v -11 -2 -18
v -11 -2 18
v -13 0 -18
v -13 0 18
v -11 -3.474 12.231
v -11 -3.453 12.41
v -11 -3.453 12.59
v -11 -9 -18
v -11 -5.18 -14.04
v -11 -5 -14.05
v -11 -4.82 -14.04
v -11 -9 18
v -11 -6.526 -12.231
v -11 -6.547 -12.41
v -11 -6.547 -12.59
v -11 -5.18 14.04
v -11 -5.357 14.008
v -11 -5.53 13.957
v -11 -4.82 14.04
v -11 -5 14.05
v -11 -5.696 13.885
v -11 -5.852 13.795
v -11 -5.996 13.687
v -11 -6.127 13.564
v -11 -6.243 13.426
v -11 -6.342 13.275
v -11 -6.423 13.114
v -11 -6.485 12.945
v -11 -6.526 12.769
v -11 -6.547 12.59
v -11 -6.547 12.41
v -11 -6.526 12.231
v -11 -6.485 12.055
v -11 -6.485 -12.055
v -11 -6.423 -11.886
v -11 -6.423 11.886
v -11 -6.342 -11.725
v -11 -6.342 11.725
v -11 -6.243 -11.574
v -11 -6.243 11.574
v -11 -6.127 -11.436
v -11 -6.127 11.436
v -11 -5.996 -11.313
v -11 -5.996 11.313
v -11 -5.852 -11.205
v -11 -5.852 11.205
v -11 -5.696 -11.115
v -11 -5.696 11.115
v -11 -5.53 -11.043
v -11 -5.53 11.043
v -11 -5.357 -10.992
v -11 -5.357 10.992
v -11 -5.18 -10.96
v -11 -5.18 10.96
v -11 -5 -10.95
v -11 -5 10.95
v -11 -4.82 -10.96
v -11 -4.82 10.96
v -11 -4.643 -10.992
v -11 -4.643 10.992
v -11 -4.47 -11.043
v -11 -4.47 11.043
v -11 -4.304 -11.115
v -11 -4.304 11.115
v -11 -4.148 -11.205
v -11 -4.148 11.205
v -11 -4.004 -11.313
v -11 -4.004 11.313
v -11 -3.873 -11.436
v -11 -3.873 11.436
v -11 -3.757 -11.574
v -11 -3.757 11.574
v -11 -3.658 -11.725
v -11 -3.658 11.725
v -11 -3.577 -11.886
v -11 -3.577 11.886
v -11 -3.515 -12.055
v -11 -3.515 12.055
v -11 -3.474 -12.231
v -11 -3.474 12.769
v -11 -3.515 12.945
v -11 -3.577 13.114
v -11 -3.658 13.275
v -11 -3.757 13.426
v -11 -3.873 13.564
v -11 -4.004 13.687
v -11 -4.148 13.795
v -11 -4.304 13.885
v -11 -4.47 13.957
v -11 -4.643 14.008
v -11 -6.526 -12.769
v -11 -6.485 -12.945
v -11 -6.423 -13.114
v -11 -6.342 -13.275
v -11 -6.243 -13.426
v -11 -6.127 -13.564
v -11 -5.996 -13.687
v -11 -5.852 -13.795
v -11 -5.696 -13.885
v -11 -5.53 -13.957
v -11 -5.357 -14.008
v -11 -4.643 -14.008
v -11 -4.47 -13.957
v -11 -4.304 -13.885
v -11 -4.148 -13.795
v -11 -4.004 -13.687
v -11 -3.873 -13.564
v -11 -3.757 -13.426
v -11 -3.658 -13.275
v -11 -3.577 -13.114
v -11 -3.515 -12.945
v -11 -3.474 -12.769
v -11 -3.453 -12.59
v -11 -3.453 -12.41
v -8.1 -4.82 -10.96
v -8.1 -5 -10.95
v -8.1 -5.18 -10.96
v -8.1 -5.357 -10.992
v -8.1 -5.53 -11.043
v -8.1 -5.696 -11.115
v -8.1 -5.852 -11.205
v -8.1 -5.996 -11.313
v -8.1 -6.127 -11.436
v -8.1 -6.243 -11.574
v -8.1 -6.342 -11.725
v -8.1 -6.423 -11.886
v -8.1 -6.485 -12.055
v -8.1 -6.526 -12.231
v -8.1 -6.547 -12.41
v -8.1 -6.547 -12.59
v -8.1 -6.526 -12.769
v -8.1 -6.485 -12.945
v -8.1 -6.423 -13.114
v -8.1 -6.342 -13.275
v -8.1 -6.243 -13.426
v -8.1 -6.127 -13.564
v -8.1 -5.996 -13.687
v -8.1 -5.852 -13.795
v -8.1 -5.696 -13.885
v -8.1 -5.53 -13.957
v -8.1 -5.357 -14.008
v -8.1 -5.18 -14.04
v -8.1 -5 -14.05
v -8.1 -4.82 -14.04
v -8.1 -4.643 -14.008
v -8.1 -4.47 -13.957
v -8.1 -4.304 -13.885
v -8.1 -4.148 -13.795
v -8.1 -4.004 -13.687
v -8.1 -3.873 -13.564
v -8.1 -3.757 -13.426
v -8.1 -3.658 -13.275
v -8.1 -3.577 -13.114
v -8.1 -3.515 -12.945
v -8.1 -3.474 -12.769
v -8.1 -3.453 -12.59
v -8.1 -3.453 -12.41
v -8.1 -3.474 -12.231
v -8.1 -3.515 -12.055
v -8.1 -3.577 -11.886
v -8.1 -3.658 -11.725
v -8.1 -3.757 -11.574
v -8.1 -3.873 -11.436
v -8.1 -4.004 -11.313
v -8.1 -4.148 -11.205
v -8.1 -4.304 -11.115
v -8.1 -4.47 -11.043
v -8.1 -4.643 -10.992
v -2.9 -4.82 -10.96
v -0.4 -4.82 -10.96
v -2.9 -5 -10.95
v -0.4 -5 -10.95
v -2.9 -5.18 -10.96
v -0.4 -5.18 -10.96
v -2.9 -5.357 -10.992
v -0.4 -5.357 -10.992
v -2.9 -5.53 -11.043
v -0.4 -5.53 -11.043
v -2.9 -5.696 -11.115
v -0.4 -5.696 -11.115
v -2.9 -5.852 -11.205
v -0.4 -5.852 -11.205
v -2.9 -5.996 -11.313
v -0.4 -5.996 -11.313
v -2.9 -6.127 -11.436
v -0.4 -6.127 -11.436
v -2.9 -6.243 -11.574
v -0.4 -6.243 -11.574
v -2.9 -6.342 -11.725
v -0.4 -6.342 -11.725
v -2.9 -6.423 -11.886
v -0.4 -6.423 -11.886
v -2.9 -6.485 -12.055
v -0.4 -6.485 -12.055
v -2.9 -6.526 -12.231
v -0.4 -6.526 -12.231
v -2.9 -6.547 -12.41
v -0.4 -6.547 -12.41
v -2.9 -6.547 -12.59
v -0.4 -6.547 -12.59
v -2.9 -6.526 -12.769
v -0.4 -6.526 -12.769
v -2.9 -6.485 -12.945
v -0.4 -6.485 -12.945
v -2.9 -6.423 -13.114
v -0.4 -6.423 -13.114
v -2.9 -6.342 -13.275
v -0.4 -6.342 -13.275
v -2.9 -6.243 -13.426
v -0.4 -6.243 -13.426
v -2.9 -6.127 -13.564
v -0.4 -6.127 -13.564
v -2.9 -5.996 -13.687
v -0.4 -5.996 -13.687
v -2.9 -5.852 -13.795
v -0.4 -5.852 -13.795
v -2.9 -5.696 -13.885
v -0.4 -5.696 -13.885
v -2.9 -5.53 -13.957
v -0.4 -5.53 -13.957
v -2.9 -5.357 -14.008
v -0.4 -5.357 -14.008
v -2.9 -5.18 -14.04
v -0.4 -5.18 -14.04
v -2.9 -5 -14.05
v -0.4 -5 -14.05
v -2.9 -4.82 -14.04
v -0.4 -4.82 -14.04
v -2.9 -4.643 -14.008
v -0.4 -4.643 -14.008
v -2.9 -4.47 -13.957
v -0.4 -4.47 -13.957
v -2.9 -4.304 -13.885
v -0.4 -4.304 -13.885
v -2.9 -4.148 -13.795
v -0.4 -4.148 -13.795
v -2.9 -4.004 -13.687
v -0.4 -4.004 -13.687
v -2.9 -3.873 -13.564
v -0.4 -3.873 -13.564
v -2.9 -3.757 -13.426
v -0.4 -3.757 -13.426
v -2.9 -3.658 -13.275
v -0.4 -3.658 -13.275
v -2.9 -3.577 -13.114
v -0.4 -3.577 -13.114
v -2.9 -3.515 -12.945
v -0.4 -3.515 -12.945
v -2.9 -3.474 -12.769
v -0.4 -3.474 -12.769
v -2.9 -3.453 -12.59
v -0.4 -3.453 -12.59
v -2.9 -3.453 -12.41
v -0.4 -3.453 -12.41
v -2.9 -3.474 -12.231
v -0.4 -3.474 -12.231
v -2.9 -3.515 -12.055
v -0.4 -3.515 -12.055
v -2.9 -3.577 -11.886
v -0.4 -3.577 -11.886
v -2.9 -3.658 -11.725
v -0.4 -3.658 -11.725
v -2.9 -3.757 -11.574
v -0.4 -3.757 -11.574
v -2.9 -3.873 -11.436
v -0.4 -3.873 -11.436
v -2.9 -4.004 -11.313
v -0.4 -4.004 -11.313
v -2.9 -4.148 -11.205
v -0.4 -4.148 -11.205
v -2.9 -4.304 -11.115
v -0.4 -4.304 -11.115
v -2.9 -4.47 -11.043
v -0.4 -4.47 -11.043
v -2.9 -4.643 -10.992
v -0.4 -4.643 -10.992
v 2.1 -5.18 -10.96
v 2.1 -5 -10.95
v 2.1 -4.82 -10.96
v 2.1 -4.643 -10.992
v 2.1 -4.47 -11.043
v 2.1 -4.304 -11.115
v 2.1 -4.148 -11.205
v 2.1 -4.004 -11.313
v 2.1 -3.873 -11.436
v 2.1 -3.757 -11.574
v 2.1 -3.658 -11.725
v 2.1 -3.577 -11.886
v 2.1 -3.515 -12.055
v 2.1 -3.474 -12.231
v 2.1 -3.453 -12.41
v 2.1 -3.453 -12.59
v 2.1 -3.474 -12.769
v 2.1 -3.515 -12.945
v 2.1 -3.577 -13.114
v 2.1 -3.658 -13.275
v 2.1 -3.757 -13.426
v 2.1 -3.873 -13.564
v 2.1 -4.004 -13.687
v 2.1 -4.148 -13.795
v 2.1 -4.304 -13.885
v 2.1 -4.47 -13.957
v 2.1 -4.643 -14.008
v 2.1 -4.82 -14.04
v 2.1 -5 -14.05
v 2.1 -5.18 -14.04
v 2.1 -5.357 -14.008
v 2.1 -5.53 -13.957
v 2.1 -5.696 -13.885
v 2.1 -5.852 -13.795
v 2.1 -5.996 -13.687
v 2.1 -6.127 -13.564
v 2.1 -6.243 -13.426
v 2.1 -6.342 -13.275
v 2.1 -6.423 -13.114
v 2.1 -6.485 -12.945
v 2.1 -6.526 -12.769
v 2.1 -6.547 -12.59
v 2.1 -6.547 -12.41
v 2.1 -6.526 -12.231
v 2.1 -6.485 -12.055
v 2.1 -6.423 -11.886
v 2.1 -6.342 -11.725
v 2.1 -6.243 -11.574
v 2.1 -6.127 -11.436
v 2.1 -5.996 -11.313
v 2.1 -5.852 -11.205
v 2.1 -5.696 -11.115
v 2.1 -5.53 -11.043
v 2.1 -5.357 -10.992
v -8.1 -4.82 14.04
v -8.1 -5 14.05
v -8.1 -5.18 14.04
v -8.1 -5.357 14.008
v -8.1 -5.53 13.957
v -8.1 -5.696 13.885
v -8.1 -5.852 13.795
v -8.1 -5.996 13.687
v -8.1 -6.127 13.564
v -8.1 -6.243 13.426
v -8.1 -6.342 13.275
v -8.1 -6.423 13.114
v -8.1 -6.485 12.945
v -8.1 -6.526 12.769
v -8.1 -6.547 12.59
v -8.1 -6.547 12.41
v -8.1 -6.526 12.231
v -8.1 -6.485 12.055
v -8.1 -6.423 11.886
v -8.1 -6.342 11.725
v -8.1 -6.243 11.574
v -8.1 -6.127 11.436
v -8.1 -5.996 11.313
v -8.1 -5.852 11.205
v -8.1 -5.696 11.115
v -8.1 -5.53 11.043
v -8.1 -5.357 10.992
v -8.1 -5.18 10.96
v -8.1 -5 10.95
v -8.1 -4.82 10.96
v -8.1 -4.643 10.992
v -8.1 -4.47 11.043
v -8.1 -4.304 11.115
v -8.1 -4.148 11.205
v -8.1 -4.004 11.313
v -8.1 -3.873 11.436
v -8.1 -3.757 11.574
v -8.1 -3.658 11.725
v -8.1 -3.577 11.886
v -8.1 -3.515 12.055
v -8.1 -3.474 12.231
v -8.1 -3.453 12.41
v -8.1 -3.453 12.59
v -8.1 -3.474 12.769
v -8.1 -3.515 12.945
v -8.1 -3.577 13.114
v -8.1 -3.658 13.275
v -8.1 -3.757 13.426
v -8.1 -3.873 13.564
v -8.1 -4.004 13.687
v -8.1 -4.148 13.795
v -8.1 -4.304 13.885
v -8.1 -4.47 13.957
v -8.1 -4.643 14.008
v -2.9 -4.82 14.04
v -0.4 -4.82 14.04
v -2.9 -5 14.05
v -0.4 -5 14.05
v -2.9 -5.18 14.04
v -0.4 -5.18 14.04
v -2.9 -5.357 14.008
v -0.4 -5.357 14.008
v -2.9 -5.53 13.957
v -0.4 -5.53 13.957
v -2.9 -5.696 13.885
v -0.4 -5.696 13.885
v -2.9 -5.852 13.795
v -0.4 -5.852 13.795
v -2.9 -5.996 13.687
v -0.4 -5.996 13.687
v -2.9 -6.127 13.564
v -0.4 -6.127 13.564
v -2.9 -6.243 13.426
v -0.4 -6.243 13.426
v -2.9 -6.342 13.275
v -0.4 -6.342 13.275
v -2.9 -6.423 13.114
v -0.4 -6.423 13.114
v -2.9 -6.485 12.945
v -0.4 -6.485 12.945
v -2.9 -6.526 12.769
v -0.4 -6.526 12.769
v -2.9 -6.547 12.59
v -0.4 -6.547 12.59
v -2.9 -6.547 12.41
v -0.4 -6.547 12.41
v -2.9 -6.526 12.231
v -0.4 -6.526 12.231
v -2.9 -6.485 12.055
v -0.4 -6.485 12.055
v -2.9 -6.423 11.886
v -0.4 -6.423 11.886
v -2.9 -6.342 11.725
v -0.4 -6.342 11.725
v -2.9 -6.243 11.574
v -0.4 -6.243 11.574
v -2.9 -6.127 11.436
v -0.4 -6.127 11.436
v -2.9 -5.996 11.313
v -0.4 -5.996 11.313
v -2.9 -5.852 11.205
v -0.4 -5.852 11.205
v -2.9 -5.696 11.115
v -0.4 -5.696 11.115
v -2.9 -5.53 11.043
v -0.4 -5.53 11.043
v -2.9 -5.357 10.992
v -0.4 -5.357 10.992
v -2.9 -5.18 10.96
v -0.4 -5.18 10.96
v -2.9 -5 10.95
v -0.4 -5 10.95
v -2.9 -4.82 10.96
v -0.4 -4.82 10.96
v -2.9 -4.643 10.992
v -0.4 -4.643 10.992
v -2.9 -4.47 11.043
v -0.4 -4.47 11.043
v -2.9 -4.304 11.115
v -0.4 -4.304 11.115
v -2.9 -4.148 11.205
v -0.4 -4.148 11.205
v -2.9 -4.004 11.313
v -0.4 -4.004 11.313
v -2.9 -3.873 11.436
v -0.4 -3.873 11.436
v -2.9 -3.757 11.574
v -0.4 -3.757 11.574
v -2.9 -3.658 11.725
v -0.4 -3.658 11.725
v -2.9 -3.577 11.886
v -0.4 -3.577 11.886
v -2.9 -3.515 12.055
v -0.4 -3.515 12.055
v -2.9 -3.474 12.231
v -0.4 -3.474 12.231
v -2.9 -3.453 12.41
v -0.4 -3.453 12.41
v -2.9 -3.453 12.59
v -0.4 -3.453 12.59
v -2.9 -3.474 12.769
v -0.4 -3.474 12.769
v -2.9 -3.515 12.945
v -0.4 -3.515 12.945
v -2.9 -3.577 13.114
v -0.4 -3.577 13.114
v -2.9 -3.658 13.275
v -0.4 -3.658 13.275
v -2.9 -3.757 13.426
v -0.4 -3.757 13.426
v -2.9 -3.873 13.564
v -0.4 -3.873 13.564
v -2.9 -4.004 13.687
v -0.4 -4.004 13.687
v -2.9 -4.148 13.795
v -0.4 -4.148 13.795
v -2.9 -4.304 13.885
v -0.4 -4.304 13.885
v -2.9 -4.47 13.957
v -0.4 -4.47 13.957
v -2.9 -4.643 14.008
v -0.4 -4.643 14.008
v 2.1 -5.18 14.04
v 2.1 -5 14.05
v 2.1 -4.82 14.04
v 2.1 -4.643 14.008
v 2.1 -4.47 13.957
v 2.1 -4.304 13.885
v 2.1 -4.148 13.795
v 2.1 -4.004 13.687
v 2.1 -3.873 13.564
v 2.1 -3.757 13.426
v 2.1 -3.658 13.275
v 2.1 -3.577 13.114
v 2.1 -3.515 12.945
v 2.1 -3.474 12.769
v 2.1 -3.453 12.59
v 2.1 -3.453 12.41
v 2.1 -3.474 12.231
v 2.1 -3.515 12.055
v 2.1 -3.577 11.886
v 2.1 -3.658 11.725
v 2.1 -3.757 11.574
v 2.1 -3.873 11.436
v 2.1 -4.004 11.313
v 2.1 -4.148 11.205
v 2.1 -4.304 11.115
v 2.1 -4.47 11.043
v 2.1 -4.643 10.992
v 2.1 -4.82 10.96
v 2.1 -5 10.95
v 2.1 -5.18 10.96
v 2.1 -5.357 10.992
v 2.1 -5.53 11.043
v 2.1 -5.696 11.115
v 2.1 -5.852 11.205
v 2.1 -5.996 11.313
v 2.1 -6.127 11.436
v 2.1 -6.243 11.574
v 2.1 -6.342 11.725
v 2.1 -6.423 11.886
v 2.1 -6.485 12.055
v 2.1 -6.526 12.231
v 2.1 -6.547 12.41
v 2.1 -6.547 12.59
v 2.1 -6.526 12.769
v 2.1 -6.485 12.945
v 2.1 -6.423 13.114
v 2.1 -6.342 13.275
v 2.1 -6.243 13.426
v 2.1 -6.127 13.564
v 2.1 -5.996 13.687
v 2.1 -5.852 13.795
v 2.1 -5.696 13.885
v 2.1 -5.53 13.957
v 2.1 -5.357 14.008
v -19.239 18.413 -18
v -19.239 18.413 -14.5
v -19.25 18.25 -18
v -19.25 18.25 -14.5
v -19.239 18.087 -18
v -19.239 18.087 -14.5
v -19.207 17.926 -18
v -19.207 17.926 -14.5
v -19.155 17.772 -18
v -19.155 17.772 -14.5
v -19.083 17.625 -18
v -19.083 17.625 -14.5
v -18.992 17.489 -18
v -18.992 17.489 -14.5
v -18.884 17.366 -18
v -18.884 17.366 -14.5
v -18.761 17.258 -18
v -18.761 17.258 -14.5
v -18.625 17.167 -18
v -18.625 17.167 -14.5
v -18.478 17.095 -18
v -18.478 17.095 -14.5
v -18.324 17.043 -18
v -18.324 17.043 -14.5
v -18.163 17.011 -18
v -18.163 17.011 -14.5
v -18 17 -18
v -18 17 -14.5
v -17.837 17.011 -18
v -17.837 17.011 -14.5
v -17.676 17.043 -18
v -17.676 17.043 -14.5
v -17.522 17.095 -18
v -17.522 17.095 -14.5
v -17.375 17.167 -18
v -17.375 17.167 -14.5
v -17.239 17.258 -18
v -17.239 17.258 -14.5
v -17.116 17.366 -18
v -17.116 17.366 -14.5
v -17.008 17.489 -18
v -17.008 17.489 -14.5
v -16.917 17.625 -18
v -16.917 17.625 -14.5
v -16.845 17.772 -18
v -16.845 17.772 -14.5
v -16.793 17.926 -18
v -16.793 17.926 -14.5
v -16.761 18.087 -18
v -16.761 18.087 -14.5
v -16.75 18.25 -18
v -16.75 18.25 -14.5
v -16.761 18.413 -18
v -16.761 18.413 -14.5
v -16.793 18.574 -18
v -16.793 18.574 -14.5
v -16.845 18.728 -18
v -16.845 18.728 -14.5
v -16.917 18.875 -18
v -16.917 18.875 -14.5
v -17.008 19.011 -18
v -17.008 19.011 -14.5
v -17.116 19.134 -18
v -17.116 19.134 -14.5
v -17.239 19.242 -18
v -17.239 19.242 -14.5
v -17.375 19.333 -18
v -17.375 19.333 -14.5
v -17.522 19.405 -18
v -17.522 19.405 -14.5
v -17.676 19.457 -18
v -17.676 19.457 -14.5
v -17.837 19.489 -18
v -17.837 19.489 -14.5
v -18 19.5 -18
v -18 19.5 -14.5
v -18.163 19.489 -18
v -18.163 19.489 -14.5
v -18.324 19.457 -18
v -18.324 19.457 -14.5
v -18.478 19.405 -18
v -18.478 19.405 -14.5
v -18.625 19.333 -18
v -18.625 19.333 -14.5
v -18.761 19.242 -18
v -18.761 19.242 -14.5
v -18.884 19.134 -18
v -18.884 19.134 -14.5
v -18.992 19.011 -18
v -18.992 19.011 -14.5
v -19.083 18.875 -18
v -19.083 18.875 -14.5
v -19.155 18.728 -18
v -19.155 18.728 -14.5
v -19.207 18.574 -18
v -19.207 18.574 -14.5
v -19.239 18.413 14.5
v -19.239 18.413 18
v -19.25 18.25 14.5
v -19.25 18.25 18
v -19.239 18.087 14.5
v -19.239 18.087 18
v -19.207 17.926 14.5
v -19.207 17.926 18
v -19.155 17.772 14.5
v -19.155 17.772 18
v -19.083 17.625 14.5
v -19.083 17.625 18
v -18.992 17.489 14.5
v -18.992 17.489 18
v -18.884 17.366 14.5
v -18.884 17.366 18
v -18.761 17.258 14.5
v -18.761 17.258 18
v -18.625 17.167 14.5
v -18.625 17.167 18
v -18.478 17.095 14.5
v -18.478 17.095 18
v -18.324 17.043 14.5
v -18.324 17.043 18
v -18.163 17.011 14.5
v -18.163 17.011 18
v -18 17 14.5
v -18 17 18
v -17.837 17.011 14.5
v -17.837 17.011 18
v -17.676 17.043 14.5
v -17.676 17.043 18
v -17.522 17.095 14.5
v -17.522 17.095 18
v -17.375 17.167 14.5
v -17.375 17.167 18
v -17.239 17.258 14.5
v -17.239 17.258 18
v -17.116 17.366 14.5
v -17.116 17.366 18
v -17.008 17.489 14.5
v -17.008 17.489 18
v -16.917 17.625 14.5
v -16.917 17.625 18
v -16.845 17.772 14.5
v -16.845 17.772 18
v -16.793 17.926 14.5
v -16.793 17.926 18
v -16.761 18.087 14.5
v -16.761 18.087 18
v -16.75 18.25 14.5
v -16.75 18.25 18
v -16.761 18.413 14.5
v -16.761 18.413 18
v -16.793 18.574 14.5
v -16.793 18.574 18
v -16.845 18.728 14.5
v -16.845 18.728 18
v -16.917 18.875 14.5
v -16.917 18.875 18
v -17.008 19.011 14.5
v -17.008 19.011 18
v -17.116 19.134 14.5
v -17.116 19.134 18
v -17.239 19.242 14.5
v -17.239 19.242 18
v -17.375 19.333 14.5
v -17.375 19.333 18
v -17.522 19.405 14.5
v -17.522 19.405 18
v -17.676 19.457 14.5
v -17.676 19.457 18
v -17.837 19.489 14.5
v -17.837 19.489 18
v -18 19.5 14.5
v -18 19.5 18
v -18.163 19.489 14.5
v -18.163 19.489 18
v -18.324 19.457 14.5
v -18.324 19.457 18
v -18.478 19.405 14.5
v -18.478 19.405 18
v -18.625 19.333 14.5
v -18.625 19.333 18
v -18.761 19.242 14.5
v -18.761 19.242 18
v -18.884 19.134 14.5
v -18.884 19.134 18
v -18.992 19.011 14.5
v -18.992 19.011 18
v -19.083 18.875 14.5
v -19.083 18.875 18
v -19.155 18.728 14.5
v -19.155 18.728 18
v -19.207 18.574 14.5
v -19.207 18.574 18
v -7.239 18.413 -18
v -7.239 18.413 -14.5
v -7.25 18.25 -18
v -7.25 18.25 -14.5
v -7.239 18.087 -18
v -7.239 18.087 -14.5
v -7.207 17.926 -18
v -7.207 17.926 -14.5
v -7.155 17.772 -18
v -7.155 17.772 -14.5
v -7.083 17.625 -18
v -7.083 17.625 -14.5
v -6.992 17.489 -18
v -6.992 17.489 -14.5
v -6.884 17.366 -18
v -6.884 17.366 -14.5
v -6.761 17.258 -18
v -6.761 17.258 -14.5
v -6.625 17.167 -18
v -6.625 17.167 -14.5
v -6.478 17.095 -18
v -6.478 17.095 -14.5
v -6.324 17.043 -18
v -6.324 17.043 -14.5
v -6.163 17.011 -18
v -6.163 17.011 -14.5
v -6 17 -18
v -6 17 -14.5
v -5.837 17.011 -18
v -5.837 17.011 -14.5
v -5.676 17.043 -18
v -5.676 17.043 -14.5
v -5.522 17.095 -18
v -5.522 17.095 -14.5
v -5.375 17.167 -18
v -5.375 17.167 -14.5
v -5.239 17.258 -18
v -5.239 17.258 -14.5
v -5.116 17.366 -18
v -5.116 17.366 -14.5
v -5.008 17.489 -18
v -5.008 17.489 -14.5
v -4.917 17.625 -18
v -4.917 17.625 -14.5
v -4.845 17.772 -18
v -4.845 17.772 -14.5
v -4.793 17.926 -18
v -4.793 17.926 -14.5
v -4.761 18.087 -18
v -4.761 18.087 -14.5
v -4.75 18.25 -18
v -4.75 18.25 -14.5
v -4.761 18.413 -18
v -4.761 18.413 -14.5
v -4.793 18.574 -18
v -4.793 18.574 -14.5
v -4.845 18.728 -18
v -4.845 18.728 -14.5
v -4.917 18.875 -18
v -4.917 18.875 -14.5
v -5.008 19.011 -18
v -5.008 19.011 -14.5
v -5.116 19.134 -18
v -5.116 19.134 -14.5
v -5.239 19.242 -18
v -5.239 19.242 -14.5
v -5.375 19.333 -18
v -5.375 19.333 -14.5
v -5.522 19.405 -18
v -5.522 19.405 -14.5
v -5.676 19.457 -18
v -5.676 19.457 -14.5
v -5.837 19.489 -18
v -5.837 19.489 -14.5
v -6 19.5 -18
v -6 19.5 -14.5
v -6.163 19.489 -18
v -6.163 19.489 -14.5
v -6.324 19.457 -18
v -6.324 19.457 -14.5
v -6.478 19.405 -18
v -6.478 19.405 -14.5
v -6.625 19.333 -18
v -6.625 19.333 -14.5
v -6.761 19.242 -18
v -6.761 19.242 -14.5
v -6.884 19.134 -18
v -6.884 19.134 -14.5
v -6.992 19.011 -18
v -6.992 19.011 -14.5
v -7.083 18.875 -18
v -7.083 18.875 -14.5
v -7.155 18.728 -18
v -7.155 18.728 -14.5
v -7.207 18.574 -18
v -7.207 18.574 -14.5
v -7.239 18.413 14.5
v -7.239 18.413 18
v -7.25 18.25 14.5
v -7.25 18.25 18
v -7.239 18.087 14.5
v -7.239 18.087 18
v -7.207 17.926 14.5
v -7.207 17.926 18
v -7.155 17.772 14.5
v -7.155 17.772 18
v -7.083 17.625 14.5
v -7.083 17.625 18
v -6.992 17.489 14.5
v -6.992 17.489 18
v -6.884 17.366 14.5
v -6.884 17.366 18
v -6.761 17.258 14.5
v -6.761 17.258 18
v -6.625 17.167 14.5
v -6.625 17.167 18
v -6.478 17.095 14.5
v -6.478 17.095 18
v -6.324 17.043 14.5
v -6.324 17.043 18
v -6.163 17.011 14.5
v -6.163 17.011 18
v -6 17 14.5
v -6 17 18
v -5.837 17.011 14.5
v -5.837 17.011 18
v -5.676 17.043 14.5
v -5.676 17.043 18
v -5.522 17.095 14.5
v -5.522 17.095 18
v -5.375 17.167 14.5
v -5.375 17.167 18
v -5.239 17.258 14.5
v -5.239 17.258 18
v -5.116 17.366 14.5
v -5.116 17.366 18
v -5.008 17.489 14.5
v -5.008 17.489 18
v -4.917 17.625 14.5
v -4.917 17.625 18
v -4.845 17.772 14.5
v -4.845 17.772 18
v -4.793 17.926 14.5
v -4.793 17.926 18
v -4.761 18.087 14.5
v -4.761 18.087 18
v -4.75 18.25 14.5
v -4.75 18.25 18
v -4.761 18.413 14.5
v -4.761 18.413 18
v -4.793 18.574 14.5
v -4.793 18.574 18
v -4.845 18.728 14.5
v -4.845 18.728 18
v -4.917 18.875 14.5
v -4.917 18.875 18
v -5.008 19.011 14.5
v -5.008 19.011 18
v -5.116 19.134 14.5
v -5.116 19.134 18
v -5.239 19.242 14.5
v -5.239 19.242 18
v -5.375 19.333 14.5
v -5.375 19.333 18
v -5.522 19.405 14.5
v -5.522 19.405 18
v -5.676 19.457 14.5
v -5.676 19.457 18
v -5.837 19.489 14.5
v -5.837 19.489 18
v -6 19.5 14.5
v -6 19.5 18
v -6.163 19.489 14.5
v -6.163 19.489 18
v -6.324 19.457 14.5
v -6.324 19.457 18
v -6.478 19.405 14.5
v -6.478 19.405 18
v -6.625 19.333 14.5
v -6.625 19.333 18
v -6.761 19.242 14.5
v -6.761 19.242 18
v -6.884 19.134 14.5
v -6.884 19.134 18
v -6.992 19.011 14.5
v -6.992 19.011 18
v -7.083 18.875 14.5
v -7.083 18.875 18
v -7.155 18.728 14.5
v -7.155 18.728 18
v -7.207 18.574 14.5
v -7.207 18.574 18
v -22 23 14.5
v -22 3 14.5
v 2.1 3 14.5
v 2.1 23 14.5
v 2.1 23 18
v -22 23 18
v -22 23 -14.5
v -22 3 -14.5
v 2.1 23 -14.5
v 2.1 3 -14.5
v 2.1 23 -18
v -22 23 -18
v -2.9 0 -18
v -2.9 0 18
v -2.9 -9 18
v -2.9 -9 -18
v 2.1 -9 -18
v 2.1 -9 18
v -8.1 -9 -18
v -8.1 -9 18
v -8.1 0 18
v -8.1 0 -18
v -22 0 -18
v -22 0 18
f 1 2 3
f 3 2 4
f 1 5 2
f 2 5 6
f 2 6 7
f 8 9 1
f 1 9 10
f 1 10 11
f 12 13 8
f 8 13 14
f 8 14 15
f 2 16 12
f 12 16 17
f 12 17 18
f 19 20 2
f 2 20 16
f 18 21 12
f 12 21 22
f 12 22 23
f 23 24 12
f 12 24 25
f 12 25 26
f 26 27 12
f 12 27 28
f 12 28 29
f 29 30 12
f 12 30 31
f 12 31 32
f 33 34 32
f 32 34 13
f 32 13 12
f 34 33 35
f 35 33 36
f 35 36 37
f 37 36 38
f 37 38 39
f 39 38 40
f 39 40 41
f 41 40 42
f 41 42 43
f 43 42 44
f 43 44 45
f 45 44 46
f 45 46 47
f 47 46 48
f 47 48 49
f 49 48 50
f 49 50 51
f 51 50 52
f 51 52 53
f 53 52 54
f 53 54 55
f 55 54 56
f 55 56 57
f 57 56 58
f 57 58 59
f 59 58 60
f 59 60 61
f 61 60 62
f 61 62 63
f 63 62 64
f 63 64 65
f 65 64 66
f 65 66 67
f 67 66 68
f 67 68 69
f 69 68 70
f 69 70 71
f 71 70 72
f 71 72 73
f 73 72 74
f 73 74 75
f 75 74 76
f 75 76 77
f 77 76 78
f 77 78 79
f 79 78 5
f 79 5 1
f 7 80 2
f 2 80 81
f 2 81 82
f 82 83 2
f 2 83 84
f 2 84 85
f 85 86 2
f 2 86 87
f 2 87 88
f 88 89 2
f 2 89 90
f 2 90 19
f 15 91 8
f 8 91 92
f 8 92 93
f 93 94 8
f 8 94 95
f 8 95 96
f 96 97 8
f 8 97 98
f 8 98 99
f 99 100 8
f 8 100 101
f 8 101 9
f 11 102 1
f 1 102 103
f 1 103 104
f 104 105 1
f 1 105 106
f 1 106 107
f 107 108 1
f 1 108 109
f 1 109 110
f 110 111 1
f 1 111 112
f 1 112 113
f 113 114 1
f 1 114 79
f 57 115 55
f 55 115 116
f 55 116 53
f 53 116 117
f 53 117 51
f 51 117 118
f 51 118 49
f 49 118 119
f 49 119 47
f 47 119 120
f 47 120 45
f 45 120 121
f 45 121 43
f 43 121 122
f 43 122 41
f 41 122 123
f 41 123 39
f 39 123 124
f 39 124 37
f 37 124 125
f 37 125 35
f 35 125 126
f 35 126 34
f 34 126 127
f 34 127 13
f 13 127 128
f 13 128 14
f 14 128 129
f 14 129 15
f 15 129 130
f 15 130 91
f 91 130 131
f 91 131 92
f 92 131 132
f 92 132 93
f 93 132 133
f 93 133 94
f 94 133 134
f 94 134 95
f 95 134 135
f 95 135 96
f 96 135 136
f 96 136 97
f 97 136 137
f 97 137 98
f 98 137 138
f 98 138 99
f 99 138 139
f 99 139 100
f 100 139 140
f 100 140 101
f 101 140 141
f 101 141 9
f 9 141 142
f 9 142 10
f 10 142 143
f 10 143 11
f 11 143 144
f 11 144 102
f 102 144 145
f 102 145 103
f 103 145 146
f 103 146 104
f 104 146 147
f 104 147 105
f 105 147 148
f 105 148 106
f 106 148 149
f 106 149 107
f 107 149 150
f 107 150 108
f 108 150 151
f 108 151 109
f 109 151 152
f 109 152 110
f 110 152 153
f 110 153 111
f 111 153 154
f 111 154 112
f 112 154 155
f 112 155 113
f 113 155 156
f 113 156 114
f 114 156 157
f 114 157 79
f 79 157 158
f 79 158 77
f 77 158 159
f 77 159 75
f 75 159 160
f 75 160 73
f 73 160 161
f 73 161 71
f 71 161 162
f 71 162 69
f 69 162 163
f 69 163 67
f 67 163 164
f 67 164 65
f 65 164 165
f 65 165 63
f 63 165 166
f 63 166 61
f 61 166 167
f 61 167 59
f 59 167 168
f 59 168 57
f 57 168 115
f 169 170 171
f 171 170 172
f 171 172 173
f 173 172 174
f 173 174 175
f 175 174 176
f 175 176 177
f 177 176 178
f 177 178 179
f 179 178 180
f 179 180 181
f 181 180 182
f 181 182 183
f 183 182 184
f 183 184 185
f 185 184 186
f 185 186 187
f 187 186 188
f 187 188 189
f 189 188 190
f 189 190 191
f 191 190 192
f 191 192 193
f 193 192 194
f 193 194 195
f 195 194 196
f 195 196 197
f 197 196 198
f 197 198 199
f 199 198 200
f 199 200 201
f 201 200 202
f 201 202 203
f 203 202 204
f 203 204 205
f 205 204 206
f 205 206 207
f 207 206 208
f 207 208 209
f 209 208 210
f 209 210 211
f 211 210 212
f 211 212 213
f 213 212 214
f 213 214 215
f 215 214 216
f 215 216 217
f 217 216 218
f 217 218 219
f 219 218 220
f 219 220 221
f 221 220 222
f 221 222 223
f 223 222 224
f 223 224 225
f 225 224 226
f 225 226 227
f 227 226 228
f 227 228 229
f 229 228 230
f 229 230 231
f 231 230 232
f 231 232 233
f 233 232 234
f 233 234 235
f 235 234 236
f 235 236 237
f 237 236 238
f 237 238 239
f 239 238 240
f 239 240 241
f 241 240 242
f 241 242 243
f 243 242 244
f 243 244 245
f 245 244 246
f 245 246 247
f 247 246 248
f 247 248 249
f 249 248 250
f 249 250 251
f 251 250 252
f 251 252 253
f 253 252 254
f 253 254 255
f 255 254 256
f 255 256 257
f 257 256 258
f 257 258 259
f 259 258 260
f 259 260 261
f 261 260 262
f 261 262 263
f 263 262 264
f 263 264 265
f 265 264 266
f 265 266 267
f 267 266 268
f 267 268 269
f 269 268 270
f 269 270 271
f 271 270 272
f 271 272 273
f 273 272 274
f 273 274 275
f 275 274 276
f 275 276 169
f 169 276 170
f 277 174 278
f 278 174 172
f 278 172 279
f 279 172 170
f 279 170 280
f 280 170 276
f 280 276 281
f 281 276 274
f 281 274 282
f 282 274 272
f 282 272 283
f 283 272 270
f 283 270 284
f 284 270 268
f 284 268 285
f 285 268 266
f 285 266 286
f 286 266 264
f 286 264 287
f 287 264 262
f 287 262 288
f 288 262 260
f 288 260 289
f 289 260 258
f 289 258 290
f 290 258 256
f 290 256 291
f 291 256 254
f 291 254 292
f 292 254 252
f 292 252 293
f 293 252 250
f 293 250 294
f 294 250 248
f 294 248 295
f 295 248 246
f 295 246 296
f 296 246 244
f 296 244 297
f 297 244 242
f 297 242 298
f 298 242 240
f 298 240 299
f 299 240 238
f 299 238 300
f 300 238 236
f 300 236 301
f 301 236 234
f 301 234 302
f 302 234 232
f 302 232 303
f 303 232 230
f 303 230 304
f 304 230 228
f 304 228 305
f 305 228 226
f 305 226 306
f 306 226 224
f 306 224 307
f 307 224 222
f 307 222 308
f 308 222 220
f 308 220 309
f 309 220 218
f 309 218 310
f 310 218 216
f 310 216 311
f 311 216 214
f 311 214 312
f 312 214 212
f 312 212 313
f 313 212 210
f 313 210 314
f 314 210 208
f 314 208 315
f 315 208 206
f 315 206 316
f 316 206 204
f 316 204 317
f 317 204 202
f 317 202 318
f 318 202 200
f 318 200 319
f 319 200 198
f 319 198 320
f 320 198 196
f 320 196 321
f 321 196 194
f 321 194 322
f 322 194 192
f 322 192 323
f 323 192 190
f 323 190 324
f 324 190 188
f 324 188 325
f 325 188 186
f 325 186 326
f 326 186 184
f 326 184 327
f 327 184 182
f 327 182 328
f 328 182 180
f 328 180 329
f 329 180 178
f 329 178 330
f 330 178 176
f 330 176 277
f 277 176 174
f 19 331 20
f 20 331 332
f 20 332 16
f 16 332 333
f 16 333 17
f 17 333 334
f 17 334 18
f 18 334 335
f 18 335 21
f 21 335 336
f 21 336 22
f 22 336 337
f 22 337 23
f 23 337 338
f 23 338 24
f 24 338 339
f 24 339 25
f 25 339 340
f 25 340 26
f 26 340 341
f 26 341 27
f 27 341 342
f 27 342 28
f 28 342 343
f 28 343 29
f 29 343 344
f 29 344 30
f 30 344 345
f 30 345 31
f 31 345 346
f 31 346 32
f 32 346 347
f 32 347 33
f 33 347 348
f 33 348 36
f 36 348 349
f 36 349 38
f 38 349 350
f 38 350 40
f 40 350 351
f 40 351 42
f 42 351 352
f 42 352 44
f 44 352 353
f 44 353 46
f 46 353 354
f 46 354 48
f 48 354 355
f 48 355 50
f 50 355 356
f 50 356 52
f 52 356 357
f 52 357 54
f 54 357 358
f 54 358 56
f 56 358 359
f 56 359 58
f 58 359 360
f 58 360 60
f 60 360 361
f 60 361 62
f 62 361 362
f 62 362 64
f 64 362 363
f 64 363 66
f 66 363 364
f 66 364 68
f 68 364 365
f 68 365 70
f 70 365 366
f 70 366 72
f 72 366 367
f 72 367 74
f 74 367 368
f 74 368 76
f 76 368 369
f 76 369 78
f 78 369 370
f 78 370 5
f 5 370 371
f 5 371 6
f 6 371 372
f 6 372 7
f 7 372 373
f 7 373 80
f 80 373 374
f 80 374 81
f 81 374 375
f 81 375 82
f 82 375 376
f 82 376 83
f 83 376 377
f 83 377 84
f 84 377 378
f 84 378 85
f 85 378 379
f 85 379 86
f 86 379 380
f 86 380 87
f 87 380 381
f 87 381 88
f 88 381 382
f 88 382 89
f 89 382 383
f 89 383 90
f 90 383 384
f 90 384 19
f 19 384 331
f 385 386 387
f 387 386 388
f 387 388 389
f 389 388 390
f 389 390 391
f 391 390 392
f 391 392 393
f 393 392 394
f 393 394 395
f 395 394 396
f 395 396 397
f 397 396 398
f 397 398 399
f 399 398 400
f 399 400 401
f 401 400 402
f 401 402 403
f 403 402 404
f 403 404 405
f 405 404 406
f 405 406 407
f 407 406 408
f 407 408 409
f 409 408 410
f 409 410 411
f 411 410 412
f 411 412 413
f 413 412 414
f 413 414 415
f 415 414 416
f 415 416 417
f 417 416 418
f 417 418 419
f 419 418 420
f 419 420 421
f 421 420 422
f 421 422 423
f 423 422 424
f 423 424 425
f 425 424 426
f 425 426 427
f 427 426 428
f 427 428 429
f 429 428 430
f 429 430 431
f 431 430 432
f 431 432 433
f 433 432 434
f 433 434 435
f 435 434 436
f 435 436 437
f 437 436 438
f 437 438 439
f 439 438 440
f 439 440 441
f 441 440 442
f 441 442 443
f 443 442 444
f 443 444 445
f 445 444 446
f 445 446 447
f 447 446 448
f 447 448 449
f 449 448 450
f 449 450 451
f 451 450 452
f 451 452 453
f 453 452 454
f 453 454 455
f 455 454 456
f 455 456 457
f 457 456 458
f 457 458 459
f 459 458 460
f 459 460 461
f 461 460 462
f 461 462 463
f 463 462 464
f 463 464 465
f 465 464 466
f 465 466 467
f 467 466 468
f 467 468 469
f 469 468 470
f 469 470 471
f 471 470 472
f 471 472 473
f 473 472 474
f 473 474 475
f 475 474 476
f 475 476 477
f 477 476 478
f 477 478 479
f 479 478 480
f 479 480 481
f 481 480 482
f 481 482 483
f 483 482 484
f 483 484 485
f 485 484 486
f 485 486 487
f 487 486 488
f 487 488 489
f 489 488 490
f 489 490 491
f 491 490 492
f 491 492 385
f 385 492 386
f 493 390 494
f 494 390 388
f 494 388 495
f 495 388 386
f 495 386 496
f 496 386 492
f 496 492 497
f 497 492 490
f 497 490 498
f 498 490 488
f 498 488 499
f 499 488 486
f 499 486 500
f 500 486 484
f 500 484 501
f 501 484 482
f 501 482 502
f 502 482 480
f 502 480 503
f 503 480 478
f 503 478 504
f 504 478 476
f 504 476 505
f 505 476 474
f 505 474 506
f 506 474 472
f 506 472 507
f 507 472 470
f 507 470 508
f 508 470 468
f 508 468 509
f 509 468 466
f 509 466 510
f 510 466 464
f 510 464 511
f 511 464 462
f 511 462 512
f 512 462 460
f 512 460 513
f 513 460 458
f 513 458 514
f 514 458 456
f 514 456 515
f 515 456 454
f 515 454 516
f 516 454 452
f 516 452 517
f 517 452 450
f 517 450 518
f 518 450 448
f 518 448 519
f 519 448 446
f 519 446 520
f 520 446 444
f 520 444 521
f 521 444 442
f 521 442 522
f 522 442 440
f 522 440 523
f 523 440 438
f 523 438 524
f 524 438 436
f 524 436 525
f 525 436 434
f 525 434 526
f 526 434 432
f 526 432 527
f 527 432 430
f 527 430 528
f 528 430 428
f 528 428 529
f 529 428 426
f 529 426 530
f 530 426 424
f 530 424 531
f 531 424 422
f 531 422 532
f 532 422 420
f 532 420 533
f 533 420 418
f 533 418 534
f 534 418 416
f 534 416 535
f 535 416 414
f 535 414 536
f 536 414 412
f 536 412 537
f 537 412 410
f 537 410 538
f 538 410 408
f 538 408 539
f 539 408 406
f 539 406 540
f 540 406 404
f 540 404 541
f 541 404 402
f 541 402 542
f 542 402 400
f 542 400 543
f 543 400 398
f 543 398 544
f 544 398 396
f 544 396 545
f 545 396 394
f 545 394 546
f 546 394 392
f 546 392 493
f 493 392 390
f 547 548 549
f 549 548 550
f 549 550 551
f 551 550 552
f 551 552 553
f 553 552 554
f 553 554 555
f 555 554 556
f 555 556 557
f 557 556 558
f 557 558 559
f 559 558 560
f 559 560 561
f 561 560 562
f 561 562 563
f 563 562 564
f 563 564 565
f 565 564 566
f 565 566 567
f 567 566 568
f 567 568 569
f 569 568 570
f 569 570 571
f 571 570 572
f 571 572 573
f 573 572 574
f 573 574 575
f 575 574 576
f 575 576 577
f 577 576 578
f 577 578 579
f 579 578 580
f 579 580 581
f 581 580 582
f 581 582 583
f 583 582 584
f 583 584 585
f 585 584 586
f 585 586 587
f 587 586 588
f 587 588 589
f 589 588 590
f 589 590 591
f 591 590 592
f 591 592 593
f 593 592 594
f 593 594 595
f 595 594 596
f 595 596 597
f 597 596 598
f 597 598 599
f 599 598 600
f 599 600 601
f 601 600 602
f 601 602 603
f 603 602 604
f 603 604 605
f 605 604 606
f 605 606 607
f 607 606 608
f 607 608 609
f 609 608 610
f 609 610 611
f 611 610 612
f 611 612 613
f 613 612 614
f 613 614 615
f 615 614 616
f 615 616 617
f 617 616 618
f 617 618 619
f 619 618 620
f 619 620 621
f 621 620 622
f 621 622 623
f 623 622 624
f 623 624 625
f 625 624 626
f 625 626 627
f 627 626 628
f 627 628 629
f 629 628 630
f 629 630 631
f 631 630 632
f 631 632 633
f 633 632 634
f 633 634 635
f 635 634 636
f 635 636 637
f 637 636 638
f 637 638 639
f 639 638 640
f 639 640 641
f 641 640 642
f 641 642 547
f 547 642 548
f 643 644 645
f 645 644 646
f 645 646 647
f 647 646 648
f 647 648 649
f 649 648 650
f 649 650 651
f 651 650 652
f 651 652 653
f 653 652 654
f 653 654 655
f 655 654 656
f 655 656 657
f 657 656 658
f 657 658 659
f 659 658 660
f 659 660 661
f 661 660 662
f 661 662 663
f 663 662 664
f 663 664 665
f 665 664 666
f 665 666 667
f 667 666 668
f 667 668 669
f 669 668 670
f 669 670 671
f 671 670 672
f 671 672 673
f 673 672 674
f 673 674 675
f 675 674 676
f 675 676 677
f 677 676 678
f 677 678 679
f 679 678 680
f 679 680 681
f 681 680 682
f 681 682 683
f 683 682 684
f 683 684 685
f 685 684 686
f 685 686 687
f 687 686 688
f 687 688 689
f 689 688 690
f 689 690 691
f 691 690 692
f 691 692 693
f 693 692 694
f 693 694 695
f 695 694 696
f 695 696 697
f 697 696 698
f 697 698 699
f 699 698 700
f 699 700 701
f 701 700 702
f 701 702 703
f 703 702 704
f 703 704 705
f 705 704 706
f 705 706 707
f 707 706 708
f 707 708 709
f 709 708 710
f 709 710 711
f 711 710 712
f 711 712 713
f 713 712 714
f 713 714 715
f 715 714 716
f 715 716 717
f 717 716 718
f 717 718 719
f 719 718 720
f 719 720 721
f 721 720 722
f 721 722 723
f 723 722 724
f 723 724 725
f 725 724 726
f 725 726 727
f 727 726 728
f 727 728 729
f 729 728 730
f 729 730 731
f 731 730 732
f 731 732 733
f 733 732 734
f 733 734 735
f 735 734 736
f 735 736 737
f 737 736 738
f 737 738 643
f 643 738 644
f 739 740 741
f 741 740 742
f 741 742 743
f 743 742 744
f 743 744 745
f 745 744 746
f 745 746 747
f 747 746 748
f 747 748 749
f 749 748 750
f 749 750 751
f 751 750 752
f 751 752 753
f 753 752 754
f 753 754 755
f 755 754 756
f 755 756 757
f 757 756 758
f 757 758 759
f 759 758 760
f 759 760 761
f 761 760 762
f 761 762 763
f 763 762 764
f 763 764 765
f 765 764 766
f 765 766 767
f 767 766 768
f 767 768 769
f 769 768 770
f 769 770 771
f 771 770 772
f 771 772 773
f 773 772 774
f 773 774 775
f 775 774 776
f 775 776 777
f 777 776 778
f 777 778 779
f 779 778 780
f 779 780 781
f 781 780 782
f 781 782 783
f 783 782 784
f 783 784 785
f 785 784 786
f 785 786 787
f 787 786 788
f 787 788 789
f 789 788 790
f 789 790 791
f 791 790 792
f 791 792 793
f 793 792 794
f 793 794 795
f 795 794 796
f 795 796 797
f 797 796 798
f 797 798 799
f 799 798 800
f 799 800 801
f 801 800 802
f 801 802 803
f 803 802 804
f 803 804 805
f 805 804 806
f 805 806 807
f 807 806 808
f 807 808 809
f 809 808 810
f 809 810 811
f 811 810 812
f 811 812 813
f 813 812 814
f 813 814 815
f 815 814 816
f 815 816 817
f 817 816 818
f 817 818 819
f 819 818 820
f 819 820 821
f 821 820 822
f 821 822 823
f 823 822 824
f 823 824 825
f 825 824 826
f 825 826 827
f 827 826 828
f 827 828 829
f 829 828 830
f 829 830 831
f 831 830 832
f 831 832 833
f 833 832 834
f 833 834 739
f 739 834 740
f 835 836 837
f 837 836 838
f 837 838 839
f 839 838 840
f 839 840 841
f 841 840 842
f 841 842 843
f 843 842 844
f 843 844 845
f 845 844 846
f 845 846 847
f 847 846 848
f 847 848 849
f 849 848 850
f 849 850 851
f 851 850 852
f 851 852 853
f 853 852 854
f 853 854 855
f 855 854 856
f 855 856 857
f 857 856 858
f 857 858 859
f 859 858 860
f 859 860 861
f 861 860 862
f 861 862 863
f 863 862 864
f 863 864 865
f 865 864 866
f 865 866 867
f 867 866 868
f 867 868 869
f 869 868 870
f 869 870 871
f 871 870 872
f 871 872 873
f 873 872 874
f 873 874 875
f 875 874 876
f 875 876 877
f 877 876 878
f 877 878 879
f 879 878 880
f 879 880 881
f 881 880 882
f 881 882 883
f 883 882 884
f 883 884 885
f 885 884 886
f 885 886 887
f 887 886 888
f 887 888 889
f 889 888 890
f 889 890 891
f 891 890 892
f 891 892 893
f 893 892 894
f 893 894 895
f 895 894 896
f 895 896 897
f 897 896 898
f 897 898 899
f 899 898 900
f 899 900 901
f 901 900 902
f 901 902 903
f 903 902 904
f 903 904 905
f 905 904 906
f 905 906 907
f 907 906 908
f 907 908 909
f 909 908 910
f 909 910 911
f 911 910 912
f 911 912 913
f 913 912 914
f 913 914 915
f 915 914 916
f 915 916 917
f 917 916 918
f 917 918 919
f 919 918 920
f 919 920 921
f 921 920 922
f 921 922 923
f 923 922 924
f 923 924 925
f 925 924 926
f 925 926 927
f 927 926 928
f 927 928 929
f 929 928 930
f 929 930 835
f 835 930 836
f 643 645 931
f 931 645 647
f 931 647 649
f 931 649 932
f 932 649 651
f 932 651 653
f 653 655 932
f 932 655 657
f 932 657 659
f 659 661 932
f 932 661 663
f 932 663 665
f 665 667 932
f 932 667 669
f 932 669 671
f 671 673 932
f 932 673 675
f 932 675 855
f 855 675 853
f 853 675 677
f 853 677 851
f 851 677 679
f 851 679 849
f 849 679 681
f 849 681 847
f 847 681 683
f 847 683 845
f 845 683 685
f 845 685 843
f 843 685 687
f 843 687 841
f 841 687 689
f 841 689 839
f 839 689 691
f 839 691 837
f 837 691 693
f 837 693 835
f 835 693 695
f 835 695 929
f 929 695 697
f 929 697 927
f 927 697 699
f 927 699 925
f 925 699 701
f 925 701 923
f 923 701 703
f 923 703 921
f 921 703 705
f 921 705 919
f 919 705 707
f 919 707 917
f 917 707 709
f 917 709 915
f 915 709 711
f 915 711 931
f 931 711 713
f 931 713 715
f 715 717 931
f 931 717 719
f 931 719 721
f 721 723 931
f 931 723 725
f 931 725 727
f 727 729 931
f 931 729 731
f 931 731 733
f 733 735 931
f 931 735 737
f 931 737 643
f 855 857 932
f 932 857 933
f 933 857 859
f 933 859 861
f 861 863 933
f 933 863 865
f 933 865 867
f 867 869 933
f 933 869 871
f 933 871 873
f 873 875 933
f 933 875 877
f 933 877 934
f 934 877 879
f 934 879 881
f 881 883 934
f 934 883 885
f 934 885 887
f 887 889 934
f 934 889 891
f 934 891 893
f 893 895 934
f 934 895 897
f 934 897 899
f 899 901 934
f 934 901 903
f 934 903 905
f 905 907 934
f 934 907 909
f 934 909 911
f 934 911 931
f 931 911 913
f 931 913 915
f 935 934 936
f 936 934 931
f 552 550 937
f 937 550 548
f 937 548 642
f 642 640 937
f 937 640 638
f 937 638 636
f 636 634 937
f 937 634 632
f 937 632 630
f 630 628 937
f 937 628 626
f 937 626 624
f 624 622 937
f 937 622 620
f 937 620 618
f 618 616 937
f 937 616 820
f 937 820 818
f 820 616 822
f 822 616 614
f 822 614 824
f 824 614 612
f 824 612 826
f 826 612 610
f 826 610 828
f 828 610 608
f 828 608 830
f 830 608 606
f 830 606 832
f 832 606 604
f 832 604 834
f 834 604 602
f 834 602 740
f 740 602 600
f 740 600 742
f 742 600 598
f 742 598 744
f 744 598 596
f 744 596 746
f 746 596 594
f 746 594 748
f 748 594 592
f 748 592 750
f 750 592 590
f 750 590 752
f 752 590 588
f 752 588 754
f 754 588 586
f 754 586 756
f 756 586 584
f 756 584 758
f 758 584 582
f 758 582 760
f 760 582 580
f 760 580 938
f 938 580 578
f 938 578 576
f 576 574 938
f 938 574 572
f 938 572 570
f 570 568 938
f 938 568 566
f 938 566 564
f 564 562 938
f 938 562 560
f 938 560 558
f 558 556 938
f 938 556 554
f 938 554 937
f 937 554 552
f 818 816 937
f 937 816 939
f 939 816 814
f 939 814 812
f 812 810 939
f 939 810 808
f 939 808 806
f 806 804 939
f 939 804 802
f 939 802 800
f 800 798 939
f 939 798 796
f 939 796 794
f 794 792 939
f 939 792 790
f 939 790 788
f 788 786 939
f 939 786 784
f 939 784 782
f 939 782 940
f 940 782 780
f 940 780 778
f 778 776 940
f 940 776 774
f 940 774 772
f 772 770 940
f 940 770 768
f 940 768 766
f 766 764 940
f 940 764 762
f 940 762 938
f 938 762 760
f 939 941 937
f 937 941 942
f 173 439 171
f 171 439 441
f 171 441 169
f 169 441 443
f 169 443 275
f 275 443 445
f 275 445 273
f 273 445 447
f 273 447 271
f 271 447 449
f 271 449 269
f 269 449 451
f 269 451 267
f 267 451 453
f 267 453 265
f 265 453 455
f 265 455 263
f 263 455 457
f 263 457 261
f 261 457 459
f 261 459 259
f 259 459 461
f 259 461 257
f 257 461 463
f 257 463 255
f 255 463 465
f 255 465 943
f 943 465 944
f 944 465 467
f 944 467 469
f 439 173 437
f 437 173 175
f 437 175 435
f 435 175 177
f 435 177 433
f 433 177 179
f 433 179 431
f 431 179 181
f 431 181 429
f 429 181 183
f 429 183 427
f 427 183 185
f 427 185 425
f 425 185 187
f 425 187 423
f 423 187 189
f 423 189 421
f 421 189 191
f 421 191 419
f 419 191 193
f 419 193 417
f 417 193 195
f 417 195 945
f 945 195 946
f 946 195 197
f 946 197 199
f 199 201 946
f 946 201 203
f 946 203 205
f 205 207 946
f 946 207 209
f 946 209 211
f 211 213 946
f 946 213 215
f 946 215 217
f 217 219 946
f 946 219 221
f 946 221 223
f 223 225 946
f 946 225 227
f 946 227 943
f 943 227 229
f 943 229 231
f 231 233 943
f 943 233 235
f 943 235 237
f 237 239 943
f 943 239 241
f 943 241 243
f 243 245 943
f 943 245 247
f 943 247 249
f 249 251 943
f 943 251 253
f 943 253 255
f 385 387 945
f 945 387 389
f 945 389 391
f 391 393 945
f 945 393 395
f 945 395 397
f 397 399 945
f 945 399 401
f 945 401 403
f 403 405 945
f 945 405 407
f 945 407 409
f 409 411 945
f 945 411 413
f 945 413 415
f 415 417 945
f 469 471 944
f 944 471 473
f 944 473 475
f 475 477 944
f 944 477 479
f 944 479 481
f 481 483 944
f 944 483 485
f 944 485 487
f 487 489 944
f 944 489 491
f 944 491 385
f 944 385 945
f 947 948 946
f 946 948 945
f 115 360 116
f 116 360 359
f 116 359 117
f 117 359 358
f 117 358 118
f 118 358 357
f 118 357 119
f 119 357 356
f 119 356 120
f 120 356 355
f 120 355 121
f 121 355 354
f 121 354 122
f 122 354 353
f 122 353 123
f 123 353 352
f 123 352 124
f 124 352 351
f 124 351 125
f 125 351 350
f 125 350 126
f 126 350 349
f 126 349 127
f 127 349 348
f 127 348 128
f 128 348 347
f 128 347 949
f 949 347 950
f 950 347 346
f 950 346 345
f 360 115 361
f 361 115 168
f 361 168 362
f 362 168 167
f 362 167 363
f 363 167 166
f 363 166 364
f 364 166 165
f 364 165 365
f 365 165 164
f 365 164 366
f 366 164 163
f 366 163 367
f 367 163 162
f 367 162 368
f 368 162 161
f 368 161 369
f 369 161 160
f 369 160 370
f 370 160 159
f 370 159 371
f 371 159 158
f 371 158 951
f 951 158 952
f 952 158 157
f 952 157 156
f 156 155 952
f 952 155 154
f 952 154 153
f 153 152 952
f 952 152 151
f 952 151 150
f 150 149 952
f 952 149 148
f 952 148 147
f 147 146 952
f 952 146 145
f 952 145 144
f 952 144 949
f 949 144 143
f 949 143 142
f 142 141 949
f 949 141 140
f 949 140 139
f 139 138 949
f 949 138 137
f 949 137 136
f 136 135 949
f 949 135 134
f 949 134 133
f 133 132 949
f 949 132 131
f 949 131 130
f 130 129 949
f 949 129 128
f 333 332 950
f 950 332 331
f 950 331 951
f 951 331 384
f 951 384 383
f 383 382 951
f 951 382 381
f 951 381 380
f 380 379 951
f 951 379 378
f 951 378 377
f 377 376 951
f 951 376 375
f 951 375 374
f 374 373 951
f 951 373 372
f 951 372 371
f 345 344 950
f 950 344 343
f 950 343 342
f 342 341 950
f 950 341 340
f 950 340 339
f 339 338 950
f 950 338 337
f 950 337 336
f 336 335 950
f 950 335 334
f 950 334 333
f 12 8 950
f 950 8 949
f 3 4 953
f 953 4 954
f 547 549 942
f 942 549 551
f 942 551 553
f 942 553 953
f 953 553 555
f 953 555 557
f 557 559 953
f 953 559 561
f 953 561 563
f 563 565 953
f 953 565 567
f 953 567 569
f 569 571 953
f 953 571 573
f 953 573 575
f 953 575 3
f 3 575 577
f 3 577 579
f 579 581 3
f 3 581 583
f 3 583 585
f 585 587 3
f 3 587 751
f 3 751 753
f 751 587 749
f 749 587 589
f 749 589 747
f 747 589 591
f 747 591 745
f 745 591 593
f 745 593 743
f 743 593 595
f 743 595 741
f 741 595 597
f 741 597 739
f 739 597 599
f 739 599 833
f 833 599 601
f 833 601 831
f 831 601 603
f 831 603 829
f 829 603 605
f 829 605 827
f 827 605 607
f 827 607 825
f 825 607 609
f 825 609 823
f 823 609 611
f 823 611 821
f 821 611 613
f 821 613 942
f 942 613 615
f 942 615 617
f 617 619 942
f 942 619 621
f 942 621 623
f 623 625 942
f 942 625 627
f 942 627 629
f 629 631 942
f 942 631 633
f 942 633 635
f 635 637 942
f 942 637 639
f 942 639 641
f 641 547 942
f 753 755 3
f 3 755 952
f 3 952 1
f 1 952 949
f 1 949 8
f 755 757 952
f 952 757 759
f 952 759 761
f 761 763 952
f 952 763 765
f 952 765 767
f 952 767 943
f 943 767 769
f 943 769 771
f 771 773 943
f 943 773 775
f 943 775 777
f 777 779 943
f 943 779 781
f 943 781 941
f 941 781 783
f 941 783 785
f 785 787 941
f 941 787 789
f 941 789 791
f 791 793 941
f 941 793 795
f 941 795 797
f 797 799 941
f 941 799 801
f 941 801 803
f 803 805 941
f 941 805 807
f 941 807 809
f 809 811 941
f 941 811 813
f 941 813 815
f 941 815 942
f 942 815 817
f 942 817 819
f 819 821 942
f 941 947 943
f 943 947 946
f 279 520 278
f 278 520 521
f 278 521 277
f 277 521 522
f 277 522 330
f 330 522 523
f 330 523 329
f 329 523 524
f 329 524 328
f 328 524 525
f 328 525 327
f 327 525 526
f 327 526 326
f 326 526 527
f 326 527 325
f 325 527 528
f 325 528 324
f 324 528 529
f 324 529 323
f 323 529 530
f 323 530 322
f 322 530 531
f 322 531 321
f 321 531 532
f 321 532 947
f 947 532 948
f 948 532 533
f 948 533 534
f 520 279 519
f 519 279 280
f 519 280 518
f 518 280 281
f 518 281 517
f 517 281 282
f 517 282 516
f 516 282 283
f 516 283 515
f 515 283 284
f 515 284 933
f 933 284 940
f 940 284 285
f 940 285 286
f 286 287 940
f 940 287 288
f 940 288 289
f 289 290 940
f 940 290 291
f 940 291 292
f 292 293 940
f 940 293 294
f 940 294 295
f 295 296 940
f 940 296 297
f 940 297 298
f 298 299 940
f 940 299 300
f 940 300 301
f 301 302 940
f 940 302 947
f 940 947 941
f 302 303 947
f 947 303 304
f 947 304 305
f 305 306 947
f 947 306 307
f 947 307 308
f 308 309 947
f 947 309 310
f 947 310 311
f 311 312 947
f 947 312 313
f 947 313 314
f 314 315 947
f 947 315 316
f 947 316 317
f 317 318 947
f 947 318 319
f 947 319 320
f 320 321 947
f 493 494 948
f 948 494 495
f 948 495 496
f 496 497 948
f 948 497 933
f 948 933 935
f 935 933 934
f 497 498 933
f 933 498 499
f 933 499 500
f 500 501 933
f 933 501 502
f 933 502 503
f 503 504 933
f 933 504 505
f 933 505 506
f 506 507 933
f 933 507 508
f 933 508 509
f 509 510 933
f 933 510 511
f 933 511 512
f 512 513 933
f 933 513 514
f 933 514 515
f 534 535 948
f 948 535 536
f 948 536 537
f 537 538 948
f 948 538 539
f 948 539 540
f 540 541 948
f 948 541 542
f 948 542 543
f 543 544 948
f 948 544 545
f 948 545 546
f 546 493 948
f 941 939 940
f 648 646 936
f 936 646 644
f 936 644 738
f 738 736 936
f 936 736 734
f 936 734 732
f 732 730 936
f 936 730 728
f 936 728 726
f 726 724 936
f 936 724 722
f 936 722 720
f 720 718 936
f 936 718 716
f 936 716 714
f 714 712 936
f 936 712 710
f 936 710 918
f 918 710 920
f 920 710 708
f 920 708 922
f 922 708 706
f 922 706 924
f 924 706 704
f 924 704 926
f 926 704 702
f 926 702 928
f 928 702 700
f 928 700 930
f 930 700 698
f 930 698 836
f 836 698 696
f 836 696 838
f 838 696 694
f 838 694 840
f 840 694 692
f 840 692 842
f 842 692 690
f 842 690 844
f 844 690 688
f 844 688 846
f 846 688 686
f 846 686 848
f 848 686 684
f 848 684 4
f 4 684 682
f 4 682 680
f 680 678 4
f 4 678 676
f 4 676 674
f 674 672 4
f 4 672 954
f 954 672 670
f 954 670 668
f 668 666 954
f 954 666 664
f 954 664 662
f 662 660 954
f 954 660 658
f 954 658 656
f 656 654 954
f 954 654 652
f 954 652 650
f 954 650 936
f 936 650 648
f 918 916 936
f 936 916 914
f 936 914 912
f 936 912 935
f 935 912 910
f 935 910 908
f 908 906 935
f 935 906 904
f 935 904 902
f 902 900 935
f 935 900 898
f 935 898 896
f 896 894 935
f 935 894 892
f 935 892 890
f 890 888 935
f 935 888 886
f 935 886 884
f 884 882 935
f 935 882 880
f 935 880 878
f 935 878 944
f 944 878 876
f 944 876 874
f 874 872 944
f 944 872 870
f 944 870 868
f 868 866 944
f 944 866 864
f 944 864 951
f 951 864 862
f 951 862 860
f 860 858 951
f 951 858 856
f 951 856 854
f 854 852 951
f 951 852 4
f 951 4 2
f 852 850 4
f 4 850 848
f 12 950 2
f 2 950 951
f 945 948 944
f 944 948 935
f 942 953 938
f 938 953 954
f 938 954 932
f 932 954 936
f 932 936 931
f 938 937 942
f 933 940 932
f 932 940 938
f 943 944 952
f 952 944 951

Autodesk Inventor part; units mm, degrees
ref_plane "YZ Plane" through (0, 0, 0) normal (1, 0, 0) x (0, 1, 0)
ref_plane "XZ Plane" through (0, 0, 0) normal (0, 1, 0) x (-1, 0, 0)
ref_plane "XY Plane" through (0, 0, 0) normal (0, 0, 1) x (1, 0, 0)
sketch "Sketch1" plane through (0, 0, 0) normal (0, 1, 0) x (-1, 0, 0)
  line L0 (0, 14.5) -> (22, 14.5)
  line L1 (22, 14.5) -> (22, -14.5)
  line L2 (22, -14.5) -> (0, -14.5)
  line L3 (0, -14.5) -> (0, 14.5)
  circle A0 centre (5, 8) radius 1.25
  circle A1 centre (5, -8) radius 1.25
  circle A2 centre (17, 8) radius 1.25
  circle A3 centre (17, -8) radius 1.25
  line L4 (0, 14.5) -> (22, 14.5)
  line L5 (22, 14.5) -> (22, 17.5)
  line L6 (22, 17.5) -> (0, 17.5)
  line L7 (0, 17.5) -> (0, 14.5)
  line L8 (0, -14.5) -> (22, -14.5)
  line L9 (22, -14.5) -> (22, -17.5)
  line L10 (22, -17.5) -> (0, -17.5)
  line L11 (0, -17.5) -> (0, -14.5)
  point P0 (0, 0)
  dimension "d0" = 29
  dimension "d1" = 14.5
  dimension "d3" = 2.5
  dimension "d4" = 2.5
  dimension "d5" = 16
  dimension "d6" = 8
  dimension "d7" = 5
  dimension "d8" = 5
  dimension "d9" = 2.5
  dimension "d10" = 2.5
  dimension "d11" = 12
  dimension "d12" = 12
  dimension "d13" = 5
  dimension "d24" = 3
  dimension "d25" = 3
extrude "Extrusion1" add sketch "Sketch1" along normal blind 3 contours L7 L6 L5 L0 | L0 L1 L2 L3 | L2 L9 L10 L11 | A0 | A1 | A2 | A3
sketch "Sketch2" plane through (0, 0, 0) normal (0, -1, 0) x (1, 0, 0)
  line L0 (-3, 17.5) -> (0, 17.5)
  line L1 (0, 17.5) -> (0, -17.5)
  line L2 (0, -17.5) -> (-3, -17.5)
  line L3 (-3, -17.5) -> (-3, 17.5)
  line L4 (-22, 17.5) -> (0, 17.5) projected
  line L5 (0, -17.5) -> (-22, -17.5) projected
  line L6 (-22, 17.5) -> (0, 17.5) projected
  line L7 (0, -17.5) -> (-22, -17.5) projected
  line L8 (-8, 17.5) -> (-11, 17.5)
  line L9 (-11, 17.5) -> (-11, -17.5)
  line L10 (-11, -17.5) -> (-8, -17.5)
  line L11 (-8, -17.5) -> (-8, 17.5)
  line L12 (0, 17.5) -> (0, -17.5) projected
  point P0 (0, 0)
  point P1 (-8, -17.5)
  dimension "d17" = 3
  dimension "d40" = 3
  dimension "d41" = 5
  dimension "d50" = 0
extrude "Extrusion2" add sketch "Sketch2" along normal blind 9 contours L0 L1 L2 L3 | L11 L5 L9 L4
sketch "Sketch5" plane through (0, 3, 0) normal (0, 1, 0) x (1, 0, 0)
  line L0 (-22, -17.5) -> (0, -17.5) projected
  line L1 (-22, -17.5) -> (0, -17.5)
  line L2 (0, -17.5) -> (0, -14.5)
  line L3 (0, -14.5) -> (-22, -14.5)
  line L4 (-22, -14.5) -> (-22, -17.5)
  line L5 (-22, 17.5) -> (0, 17.5)
  line L6 (0, 17.5) -> (0, 14.5)
  line L7 (0, 14.5) -> (-22, 14.5)
  line L8 (-22, 14.5) -> (-22, 17.5)
  line L9 (0, 17.5) -> (-22, 17.5) projected
  line L10 (0, -17.5) -> (0, 17.5) projected
  point P0 (0, 0)
  dimension "d26" = 3
  dimension "d27" = 3
extrude "Extrusion4" add sketch "Sketch5" along normal blind 20
sketch "Sketch6" plane through (0, 0, 17.5) normal (0, 0, 1) x (1, 0, 0)
  circle A0 centre (-18, 18.25) radius 1.25
  line L0 (-22, 0) -> (0, 0) construction
  circle A1 centre (-6, 18.25) radius 1.25
  line L1 (-22, 0) -> (-22, 23) projected
  line L2 (0, 0) -> (0, 23) projected
  line L3 (-22, 3) -> (0, 3) projected
  line L4 (0, 3) -> (-22, 3) projected
  dimension "d34" = 2.5
  dimension "d53" = 2.5
  dimension "d54" = 4
  dimension "d55" = 6
  dimension "d56" = 15.25
  dimension "d57" = 15.25
extrude "Extrusion5" cut sketch "Sketch6" against normal blind 50
sketch "Sketch8" plane through (0, -9, 17.5) normal (1, 0, 0) x (0, 0, -1)
  circle A0 centre (5, 4) radius 1.55
  circle A1 centre (30, 4) radius 1.55
  line L0 (35, 0) -> (0, 0) projected
  line L1 (35, 0) -> (0, 0) projected
  line L2 (35, 0) -> (35, 32) projected
  line L3 (0, 0) -> (0, 32) projected
  point P0 (17.5, 9)
  dimension "d42" = 3.1
  dimension "d43" = 3.1
  dimension "d46" = 4
  dimension "d47" = 4
  dimension "d65" = 5
  dimension "d66" = 5
extrude "Extrusion6" cut sketch "Sketch8" against normal blind 100
thicken "Thicken1" operation add thickness 0.1 both sides no extend neighbours yes toward (1, 0, 0) faces at (-3, -1.1836, -3.9835)
thicken "Thicken2" operation add thickness 0.1 both sides no extend neighbours yes toward (-1, 0, 0) faces at (-8, -1.1836, -3.9835)
chamfer "Chamfer1" distance 2 angle 45 1 edges at (-11, 0, 0)
thicken "Thicken3" operation add thickness 2.1 both sides no extend neighbours yes toward (1, 0, 0) faces at (0, 0.6759, -3.7799)
thicken "Thicken4" operation add thickness 0.5 both sides no extend neighbours yes toward (0, 0, 1) faces at (-12.3333, 11.4808, 17.5)
thicken "Thicken5" operation add thickness 0.5 both sides no extend neighbours yes toward (0, 0, -1) faces at (-12.3333, 11.4808, -17.5)
equation "\"d1\" = 0.5 * d0"
equation "\"d6\" = 0.5 * d5"
properties part number "Bar_motor_mount"
